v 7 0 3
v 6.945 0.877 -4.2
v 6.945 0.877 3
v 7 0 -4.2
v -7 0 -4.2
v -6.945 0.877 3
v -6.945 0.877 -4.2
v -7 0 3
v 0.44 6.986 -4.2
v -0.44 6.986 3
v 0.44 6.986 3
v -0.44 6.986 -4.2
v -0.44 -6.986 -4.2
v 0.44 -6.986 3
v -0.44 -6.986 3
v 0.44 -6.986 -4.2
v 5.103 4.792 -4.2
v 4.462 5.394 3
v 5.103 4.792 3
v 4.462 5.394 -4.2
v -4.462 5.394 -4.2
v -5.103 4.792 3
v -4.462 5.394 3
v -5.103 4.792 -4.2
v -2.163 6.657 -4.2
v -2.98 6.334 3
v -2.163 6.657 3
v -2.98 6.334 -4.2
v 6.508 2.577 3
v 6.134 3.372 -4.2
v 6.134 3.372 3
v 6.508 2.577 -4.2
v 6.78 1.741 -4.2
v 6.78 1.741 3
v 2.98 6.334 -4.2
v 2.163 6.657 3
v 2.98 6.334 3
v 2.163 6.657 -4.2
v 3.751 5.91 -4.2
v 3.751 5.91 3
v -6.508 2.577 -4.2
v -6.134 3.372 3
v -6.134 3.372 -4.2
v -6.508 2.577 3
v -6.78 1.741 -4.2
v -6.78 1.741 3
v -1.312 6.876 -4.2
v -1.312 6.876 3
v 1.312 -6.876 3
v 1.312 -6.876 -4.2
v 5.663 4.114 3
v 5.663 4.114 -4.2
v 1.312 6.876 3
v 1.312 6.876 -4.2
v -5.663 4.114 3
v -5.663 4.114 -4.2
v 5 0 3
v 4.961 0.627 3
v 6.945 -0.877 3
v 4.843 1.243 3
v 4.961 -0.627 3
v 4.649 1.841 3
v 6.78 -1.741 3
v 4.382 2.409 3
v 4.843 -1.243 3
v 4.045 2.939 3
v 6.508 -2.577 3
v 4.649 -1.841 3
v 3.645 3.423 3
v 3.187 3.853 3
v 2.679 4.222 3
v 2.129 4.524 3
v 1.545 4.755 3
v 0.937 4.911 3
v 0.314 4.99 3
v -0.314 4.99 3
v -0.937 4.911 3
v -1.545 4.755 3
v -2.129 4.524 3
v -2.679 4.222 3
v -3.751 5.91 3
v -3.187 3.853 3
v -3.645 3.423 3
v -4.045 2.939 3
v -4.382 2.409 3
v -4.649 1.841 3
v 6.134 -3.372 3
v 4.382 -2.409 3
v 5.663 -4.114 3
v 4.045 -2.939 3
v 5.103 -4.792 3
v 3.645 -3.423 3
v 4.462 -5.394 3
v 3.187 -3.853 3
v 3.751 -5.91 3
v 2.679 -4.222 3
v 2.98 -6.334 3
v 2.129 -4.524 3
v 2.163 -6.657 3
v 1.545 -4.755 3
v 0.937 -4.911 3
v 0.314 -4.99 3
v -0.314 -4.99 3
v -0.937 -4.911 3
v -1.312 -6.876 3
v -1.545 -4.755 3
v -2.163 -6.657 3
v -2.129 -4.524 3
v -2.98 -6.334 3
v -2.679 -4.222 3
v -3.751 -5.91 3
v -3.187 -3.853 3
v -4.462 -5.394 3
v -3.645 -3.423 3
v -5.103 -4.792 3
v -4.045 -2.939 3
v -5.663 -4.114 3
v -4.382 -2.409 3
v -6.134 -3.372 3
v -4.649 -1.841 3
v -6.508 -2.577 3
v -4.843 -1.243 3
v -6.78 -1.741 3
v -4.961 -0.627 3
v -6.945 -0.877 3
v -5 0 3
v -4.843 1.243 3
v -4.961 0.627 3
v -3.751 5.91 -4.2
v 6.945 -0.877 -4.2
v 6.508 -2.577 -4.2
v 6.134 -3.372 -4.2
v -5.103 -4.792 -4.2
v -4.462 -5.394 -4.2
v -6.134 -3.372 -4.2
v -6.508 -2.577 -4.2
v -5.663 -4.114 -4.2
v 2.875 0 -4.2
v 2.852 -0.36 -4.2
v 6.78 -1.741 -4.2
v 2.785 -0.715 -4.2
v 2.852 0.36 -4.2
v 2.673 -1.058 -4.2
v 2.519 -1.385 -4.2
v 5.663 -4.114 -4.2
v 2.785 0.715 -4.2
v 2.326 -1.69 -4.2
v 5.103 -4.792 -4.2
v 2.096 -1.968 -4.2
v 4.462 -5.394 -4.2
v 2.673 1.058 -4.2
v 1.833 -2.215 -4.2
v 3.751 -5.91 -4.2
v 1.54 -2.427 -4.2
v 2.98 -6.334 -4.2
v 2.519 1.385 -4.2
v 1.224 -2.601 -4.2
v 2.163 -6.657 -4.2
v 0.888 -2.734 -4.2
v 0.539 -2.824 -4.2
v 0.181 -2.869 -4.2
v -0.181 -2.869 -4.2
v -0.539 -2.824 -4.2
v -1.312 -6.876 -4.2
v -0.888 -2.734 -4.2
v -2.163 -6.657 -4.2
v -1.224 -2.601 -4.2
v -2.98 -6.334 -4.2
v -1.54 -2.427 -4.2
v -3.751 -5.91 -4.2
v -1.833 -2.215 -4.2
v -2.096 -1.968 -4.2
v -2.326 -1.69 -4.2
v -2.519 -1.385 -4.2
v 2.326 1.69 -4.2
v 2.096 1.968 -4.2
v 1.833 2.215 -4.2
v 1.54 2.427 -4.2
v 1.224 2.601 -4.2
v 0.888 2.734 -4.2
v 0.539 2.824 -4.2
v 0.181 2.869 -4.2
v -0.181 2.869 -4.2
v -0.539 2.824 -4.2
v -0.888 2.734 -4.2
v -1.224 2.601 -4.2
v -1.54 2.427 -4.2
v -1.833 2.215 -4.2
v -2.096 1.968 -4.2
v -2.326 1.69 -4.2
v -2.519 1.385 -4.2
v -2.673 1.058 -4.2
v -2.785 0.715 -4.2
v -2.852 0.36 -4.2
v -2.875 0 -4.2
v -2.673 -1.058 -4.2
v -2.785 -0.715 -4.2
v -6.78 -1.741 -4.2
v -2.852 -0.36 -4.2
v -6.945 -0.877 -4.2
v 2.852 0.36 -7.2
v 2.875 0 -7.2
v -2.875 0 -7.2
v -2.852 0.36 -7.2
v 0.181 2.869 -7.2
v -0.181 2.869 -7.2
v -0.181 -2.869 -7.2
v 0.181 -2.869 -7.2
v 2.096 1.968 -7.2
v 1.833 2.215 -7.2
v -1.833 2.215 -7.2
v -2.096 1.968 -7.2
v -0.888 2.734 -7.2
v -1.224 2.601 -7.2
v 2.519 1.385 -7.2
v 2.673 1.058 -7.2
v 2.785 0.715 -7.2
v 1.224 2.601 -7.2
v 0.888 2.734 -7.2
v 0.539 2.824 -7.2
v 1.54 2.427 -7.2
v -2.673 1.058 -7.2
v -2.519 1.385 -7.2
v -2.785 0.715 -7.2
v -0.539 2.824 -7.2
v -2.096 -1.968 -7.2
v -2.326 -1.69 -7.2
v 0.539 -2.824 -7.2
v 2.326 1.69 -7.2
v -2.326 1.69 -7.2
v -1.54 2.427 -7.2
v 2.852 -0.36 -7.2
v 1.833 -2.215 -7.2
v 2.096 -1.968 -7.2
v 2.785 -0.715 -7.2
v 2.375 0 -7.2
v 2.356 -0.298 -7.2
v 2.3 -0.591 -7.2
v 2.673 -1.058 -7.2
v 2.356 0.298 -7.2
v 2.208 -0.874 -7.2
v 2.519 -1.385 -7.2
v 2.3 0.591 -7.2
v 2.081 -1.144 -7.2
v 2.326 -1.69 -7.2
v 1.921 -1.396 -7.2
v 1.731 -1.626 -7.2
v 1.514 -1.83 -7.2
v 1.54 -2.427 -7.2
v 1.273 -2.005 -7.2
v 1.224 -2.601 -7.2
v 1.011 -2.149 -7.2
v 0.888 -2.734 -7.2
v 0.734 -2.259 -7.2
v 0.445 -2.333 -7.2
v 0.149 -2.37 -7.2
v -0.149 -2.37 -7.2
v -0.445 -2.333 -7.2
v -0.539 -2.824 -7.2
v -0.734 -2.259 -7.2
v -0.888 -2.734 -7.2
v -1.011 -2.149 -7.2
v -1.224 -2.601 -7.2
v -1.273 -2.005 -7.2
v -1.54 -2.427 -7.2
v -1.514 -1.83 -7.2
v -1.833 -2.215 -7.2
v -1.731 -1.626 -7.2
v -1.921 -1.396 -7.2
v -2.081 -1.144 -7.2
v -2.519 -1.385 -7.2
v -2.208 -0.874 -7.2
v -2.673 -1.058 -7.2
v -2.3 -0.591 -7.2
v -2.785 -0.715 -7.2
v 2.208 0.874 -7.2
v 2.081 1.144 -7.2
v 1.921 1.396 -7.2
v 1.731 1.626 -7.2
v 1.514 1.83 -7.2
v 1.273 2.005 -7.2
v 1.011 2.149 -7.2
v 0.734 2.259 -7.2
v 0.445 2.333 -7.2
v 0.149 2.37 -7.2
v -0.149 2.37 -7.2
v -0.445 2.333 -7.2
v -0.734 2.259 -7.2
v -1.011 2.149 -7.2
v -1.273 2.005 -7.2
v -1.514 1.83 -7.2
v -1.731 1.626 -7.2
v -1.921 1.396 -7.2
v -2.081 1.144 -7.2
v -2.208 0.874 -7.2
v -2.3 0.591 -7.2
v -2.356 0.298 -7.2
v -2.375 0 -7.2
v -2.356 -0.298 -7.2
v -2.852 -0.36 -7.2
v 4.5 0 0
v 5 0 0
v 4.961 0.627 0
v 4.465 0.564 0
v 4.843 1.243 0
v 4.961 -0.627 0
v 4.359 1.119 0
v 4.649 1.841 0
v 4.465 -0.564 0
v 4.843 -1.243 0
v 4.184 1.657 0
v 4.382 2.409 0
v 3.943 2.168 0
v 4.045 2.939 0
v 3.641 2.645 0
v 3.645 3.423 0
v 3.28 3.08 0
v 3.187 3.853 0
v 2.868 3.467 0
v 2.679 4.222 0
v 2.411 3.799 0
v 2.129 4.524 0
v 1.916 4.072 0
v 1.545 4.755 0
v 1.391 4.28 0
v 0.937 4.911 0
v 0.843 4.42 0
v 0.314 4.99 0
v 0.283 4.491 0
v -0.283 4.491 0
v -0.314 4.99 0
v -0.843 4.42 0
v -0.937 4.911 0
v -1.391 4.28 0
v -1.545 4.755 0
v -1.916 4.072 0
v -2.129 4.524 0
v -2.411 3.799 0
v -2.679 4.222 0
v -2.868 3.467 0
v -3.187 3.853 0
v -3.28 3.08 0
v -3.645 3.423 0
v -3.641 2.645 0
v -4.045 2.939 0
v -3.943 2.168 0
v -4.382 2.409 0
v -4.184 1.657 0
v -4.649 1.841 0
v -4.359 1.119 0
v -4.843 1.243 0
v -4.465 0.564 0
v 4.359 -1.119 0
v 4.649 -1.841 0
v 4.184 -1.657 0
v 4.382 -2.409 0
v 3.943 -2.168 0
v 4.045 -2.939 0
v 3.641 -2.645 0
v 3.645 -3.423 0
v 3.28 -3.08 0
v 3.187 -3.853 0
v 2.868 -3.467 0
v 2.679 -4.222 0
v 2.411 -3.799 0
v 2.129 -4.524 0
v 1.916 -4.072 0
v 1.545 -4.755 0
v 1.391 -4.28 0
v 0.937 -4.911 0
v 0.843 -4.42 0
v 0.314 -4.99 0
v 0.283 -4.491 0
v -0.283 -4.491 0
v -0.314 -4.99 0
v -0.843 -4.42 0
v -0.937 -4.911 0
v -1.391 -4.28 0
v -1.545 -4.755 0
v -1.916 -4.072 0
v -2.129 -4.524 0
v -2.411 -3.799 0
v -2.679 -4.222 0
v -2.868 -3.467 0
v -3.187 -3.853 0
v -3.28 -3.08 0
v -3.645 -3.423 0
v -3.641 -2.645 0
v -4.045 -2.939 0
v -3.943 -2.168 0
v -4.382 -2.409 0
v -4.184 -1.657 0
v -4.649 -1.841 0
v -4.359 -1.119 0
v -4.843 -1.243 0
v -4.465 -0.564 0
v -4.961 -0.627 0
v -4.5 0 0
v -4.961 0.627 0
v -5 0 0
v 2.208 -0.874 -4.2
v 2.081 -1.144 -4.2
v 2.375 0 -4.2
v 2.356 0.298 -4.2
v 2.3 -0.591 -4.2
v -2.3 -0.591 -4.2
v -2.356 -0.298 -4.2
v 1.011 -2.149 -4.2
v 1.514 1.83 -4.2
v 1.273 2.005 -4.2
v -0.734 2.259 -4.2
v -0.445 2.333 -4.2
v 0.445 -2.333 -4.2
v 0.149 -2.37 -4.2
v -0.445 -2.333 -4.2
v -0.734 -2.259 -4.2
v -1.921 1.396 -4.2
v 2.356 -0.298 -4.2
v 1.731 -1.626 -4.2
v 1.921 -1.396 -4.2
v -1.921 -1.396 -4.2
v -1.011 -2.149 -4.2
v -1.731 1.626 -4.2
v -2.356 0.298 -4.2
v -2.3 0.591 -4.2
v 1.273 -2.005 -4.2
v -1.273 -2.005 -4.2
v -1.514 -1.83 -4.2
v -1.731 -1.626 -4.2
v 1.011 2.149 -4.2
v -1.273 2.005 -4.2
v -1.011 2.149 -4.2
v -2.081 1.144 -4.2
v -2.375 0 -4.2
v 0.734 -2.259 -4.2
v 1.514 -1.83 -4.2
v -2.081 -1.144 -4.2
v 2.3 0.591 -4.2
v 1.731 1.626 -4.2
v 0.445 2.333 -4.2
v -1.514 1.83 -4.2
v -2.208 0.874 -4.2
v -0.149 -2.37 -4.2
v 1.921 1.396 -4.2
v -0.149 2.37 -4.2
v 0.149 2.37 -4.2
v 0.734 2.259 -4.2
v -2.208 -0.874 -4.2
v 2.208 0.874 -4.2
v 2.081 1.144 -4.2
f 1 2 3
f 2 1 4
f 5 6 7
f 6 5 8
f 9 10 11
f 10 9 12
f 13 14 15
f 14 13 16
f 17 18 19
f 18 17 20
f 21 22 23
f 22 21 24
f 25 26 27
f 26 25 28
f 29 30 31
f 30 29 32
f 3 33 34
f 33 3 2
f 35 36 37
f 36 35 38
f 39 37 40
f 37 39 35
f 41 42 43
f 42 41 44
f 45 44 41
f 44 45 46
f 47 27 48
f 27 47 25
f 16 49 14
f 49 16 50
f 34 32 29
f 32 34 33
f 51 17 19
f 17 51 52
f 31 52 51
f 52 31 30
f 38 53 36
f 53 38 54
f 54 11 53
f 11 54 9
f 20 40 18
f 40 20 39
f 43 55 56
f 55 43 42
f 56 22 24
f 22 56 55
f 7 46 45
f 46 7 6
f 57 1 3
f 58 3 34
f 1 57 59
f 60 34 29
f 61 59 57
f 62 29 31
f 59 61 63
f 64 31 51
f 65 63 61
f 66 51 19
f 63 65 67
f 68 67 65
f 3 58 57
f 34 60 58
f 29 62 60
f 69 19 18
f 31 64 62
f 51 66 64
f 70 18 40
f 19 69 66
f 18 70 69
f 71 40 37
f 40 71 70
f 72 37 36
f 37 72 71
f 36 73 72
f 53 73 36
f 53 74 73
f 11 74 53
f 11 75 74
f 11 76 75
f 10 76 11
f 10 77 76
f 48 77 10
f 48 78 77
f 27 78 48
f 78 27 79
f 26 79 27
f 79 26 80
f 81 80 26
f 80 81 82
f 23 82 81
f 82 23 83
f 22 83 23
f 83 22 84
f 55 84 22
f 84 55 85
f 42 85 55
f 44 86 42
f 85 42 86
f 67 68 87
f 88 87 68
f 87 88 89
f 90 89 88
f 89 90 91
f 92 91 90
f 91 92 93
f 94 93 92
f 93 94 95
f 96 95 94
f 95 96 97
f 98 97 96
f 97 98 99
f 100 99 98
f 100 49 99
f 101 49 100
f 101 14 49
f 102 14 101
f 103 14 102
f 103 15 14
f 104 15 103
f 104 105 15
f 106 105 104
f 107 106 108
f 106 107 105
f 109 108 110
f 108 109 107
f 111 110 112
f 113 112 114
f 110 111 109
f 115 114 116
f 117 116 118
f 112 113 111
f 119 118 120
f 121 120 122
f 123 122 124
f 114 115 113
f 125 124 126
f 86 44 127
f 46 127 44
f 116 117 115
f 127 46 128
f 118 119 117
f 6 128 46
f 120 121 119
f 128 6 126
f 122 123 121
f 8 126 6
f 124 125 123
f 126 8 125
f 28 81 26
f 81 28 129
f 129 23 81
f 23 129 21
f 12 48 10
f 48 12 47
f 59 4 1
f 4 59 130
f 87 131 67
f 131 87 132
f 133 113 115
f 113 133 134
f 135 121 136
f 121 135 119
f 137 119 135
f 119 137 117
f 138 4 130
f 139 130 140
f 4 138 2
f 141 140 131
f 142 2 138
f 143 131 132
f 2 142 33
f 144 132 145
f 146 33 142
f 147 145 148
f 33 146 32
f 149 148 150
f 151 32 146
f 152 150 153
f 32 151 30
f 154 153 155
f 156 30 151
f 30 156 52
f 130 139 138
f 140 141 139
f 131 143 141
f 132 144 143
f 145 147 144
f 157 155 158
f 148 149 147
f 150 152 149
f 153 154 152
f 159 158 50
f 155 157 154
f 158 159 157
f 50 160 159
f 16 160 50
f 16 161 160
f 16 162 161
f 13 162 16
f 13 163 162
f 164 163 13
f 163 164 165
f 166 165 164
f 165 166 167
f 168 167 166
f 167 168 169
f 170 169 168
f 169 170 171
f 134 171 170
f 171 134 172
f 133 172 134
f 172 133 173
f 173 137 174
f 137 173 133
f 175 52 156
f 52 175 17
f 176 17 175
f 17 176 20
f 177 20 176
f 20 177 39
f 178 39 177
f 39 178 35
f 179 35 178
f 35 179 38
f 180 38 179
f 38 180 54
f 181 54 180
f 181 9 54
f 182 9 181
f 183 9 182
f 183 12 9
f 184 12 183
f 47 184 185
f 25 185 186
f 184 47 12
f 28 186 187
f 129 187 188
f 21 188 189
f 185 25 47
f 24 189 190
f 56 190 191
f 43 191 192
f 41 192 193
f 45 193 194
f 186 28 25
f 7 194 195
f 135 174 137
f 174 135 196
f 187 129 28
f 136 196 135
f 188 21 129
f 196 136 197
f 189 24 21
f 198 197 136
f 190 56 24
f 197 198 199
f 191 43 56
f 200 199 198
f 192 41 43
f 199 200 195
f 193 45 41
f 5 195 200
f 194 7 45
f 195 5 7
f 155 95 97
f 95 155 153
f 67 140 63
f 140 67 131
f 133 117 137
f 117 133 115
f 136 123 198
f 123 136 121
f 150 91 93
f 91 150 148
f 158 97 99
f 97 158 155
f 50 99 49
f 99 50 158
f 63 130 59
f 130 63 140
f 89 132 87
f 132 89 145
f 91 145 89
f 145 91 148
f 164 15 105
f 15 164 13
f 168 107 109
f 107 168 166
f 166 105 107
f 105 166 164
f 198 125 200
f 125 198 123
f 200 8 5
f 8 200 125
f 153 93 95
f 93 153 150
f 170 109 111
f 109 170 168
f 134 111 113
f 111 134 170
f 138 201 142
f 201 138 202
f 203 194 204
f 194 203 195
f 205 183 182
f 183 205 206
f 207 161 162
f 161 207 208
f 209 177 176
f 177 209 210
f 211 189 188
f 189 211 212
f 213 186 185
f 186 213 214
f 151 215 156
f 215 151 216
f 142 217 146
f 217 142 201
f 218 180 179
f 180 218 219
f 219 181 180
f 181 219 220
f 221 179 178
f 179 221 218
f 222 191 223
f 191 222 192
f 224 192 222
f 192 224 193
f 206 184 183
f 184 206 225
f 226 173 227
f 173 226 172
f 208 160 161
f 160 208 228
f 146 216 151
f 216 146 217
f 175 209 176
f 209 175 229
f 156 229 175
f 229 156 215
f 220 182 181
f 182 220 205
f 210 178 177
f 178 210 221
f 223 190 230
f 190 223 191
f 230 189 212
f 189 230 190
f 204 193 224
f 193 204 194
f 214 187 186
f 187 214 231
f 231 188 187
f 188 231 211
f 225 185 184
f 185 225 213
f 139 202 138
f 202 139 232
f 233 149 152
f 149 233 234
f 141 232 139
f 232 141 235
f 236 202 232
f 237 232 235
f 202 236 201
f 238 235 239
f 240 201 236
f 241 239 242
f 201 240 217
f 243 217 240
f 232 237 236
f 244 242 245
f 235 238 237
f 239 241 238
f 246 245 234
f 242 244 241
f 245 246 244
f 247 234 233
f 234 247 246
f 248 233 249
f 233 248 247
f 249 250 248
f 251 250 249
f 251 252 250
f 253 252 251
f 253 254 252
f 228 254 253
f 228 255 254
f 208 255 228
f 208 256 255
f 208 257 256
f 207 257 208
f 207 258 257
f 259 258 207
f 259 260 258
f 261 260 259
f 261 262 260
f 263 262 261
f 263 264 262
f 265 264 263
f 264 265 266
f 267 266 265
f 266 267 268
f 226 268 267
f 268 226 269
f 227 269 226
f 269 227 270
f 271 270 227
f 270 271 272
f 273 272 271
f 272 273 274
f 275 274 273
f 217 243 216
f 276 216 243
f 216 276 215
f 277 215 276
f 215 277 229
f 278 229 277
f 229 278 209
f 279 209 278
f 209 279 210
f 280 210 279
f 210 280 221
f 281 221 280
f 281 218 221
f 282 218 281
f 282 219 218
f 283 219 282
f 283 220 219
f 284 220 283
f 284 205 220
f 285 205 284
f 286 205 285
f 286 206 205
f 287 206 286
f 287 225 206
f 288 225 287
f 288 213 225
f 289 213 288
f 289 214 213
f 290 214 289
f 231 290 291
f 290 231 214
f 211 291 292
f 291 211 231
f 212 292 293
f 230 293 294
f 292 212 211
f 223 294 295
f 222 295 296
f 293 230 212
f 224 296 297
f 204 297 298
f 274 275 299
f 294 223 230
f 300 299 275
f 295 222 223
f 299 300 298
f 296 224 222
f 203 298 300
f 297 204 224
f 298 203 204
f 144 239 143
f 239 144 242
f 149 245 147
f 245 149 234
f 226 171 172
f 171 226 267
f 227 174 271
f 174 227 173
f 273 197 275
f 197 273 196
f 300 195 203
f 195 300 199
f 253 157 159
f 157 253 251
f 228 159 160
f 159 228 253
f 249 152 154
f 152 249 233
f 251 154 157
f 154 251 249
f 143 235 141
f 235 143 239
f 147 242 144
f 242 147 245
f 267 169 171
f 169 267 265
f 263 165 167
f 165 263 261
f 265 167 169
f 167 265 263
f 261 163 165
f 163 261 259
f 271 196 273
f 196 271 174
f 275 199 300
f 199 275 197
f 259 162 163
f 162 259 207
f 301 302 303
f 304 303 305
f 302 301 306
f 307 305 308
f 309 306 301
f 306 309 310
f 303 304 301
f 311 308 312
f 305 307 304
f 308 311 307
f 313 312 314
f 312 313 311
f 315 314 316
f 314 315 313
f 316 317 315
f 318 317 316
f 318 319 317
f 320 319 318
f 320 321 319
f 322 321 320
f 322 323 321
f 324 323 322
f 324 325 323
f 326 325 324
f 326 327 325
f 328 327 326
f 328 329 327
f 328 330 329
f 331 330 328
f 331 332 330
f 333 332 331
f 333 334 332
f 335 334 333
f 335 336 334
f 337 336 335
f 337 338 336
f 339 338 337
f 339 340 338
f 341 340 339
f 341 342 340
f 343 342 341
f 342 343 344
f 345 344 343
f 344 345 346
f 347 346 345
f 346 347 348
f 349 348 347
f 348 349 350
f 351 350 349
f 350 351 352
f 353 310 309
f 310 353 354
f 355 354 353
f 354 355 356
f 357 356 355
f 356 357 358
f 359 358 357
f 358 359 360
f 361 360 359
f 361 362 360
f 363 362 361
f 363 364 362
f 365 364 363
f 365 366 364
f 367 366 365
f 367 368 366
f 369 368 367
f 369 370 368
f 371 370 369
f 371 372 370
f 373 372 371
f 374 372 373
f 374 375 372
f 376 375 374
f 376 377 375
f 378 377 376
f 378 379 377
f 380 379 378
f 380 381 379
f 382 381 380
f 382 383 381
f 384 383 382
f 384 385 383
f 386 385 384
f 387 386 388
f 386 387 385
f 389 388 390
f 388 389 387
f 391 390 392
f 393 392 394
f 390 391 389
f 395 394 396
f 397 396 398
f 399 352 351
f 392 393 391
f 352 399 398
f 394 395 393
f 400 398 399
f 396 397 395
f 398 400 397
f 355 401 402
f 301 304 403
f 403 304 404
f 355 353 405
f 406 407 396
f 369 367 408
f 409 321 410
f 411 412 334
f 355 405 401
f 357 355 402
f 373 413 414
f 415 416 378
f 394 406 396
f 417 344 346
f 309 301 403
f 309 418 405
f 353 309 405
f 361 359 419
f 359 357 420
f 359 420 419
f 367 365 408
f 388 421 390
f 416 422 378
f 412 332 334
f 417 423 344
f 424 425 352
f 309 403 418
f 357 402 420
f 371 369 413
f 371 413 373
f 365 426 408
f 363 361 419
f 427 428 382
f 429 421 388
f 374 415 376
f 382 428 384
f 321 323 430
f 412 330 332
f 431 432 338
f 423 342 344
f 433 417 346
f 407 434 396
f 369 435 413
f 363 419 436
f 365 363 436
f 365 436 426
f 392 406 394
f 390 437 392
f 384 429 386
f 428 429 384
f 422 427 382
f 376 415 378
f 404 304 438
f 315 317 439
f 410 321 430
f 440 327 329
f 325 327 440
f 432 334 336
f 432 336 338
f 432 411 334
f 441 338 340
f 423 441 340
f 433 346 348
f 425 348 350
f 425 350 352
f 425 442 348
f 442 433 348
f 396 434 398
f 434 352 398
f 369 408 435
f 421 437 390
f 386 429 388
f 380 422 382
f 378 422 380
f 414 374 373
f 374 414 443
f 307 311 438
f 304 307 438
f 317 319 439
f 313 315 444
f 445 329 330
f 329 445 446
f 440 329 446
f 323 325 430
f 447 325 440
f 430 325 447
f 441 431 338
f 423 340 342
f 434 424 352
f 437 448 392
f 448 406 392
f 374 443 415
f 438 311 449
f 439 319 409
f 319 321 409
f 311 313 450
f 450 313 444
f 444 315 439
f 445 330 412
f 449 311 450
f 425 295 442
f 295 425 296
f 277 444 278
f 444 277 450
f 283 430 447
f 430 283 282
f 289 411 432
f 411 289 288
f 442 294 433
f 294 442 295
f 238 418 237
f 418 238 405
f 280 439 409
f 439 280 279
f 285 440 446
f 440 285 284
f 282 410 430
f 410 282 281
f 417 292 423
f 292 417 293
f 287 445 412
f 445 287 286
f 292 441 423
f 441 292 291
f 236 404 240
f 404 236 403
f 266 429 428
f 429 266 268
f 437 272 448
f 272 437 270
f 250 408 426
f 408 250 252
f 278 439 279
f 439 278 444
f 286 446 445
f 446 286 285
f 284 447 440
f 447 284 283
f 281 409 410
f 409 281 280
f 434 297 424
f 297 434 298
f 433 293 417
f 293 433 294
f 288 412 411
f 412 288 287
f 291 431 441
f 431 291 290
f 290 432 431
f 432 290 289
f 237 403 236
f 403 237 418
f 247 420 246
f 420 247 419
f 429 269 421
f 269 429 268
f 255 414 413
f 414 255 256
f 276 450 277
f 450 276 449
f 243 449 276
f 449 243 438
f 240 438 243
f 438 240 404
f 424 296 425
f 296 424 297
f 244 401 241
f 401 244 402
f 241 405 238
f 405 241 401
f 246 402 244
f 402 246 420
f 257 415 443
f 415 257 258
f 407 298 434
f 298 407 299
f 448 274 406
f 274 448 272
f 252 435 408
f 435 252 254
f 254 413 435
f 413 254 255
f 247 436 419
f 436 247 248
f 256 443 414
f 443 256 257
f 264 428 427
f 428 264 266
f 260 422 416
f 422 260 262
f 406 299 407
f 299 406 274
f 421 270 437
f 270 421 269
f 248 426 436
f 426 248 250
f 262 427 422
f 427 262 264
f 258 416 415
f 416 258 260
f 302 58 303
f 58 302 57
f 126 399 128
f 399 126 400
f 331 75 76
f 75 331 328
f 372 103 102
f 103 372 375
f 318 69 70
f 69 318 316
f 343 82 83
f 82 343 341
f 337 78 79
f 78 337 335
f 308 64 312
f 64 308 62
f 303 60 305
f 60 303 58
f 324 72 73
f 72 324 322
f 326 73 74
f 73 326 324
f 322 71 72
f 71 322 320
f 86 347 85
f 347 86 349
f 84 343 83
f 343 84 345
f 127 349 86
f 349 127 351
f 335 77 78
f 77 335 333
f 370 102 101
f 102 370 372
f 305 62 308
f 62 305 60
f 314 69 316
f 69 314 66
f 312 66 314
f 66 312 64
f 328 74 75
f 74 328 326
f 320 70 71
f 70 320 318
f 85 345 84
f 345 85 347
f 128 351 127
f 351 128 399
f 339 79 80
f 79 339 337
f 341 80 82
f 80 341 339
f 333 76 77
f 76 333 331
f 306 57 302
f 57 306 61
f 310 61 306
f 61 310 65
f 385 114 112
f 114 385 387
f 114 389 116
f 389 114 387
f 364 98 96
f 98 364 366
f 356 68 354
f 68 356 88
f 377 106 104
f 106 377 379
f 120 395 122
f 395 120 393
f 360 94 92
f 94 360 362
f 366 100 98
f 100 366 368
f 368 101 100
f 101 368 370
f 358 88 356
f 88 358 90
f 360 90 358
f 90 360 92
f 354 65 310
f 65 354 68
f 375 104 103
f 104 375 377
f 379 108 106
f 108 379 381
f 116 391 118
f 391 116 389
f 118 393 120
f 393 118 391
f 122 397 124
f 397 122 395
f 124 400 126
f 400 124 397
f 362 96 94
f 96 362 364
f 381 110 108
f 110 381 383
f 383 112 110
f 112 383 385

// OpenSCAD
$fn = 50;

difference() {
	union() {
		translate(v = [0, 0, -4.2]) {
			cylinder(h = 7.2, r = 7.0);
		}
		#translate(v = [0, 0, -7.2]) {
			cylinder(h = 7.2, r = 2.875);
		}
	}
	union() {
		translate(v = [0, 0, 0]) {
			rotate(a = [0, 0, 0]) {
				difference() {
					union() {
						translate(v = [0, 0, -7.2]) {
							cylinder(h = 7.2, r = 2.25);
						}
						translate(v = [0, 0, -4.2]) {
							cylinder(h = 4.2, r1 = 2.375, r2 = 4.5);
						}
						translate(v = [0, 0, -7.2]) {
							cylinder(h = 7.2, r = 2.375);
						}
						translate(v = [0, 0, -7.2]) {
							cylinder(h = 7.2, r = 2.25);
						}
					}
					union();
				}
			}
		}
		#cylinder(h = 3, r = 5.0);
	}
}
